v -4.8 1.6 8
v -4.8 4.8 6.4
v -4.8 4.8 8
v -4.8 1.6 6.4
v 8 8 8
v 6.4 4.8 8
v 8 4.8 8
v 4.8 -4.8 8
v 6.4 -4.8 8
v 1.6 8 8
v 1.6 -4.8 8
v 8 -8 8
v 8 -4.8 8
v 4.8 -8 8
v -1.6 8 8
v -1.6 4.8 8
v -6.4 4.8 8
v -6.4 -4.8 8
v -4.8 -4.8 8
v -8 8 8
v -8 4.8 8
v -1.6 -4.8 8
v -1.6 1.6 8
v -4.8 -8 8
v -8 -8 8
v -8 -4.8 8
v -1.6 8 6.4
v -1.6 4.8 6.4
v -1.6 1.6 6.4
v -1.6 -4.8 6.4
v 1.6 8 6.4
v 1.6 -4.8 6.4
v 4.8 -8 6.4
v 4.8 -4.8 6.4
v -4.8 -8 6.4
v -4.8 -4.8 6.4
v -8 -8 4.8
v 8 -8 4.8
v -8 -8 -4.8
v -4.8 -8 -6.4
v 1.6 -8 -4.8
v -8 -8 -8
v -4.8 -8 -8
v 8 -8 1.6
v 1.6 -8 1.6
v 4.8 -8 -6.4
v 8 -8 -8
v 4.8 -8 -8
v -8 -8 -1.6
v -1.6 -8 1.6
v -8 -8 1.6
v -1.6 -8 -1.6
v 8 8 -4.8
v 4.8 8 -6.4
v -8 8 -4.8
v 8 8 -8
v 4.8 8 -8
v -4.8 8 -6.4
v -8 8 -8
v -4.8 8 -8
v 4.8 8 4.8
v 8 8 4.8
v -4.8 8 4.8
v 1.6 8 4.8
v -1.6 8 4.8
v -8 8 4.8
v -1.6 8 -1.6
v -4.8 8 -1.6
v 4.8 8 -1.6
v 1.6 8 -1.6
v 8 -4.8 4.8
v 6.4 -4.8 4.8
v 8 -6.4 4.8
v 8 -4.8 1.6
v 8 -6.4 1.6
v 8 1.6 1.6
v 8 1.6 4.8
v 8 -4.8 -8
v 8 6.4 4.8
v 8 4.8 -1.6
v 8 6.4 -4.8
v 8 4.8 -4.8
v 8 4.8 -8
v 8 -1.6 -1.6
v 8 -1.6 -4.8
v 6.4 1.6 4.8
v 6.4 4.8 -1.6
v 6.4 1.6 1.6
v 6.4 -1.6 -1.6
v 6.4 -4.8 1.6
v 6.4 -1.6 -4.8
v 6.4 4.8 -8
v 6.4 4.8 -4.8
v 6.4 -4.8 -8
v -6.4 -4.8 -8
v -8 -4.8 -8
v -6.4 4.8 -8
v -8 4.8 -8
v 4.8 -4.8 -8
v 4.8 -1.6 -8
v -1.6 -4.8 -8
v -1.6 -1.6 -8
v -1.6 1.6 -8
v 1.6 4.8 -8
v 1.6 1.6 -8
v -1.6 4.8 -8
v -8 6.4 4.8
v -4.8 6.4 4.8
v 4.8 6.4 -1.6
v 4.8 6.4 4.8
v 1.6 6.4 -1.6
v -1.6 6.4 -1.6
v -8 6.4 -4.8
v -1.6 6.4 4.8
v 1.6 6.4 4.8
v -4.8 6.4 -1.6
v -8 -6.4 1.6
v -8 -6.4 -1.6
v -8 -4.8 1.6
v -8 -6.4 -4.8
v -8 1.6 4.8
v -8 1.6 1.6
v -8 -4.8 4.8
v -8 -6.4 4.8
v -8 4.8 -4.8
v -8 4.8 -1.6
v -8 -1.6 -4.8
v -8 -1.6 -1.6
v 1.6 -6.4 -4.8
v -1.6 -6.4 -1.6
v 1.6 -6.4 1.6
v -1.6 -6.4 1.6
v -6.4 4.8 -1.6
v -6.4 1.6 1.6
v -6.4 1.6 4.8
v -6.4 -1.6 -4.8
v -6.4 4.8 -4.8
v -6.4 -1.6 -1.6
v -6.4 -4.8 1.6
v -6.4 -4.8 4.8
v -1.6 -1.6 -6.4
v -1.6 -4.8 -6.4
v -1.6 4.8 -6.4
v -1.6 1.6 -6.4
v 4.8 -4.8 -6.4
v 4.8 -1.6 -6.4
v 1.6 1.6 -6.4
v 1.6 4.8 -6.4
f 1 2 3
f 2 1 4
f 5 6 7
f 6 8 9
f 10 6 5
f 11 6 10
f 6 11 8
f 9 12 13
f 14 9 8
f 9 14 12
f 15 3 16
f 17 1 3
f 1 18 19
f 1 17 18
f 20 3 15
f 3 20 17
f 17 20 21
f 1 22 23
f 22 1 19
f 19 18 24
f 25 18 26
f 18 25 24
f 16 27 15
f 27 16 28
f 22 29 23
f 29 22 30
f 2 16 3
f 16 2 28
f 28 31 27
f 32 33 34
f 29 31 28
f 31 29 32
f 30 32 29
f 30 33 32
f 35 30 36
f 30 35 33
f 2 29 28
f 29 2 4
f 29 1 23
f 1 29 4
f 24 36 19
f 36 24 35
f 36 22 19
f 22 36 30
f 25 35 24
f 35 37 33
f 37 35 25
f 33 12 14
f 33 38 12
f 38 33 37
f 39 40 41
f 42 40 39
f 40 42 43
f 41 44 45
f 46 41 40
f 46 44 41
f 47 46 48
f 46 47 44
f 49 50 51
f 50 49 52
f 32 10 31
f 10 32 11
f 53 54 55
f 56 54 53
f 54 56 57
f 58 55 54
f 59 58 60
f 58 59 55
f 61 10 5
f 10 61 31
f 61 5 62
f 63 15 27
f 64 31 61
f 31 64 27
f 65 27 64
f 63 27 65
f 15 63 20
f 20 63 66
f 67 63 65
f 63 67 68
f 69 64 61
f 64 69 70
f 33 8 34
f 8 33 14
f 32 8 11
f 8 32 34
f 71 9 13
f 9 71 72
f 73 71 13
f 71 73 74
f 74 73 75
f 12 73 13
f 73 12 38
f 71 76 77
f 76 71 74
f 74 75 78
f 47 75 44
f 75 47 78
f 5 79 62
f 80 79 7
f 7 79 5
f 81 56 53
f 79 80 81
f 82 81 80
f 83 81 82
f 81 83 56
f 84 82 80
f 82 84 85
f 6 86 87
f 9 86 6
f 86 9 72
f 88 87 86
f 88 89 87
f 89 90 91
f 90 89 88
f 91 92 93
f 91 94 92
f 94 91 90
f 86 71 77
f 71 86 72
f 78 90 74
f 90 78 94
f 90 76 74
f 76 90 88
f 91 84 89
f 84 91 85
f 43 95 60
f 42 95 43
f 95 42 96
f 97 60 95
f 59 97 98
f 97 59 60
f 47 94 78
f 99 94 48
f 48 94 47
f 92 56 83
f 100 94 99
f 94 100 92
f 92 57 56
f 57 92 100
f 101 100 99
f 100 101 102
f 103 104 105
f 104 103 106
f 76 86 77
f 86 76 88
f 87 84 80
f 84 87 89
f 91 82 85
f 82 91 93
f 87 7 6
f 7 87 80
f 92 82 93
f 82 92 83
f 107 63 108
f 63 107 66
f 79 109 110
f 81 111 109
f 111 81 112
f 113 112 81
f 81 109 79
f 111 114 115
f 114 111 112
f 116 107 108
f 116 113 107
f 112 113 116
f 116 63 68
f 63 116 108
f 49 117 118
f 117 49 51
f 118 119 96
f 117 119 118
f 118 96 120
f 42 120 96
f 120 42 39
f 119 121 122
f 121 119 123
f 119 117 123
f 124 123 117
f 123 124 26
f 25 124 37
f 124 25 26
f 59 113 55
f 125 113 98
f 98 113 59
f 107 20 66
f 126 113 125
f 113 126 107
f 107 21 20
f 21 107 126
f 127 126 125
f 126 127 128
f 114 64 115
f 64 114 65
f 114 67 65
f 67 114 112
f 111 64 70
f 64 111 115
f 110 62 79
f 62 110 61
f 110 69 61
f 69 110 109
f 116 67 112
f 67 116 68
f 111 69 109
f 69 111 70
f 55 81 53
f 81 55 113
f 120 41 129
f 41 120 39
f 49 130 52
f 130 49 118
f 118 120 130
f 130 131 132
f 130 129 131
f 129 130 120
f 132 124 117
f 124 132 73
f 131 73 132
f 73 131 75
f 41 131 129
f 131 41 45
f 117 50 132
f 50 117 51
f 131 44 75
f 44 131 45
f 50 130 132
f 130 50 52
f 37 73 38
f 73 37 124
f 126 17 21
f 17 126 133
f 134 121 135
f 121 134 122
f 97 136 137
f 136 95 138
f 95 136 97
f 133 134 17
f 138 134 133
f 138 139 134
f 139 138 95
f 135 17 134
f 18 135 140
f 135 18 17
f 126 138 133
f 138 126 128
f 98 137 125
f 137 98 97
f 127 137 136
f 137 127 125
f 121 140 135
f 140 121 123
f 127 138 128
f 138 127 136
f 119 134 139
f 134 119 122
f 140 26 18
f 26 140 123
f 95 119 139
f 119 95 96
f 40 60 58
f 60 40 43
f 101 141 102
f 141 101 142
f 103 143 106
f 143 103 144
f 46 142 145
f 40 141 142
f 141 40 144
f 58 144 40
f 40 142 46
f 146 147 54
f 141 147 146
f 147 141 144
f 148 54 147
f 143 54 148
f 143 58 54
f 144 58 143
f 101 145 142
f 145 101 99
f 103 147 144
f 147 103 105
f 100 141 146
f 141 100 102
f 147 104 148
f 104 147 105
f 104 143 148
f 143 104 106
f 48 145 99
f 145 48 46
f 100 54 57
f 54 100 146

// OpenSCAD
// Generated by SolidPython 0.4.6 on 2020-05-11 15:22:11
$fa = .01;
$fs = 0.1;


difference() {
	cube(center = true, size = [16, 16, 16]);
	union() {
		translate(v = [0, 0, 8.0000000000]) {
			rotate(a = [0, 0, 0]) {
				union() {
					translate(v = [-3.2000000000, 3.2000000000, 0]) {
						translate(v = [0, 0, -0.8000000000]) {
							cube(center = true, size = [3.2000000000, 3.2000000000, 1.6000000000]);
						}
					}
					translate(v = [-3.2000000000, -6.4000000000, 0]) {
						translate(v = [0, 0, -0.8000000000]) {
							cube(center = true, size = [3.2000000000, 3.2000000000, 1.6000000000]);
						}
					}
					translate(v = [0.0000000000, 6.4000000000, 0]) {
						translate(v = [0, 0, -0.8000000000]) {
							cube(center = true, size = [3.2000000000, 3.2000000000, 1.6000000000]);
						}
					}
					translate(v = [0.0000000000, 3.2000000000, 0]) {
						translate(v = [0, 0, -0.8000000000]) {
							cube(center = true, size = [3.2000000000, 3.2000000000, 1.6000000000]);
						}
					}
					translate(v = [0.0000000000, 0.0000000000, 0]) {
						translate(v = [0, 0, -0.8000000000]) {
							cube(center = true, size = [3.2000000000, 3.2000000000, 1.6000000000]);
						}
					}
					translate(v = [0.0000000000, -3.2000000000, 0]) {
						translate(v = [0, 0, -0.8000000000]) {
							cube(center = true, size = [3.2000000000, 3.2000000000, 1.6000000000]);
						}
					}
					translate(v = [0.0000000000, -6.4000000000, 0]) {
						translate(v = [0, 0, -0.8000000000]) {
							cube(center = true, size = [3.2000000000, 3.2000000000, 1.6000000000]);
						}
					}
					translate(v = [3.2000000000, -6.4000000000, 0]) {
						translate(v = [0, 0, -0.8000000000]) {
							cube(center = true, size = [3.2000000000, 3.2000000000, 1.6000000000]);
						}
					}
				}
			}
		}
		translate(v = [8.0000000000, 0, 0]) {
			rotate(a = [90, 0, 90]) {
				union() {
					translate(v = [-3.2000000000, 6.4000000000, 0]) {
						translate(v = [0, 0, -0.8000000000]) {
							cube(center = true, size = [3.2000000000, 3.2000000000, 1.6000000000]);
						}
					}
					translate(v = [-3.2000000000, 0.0000000000, 0]) {
						translate(v = [0, 0, -0.8000000000]) {
							cube(center = true, size = [3.2000000000, 3.2000000000, 1.6000000000]);
						}
					}
					translate(v = [-3.2000000000, -3.2000000000, 0]) {
						translate(v = [0, 0, -0.8000000000]) {
							cube(center = true, size = [3.2000000000, 3.2000000000, 1.6000000000]);
						}
					}
					translate(v = [-3.2000000000, -6.4000000000, 0]) {
						translate(v = [0, 0, -0.8000000000]) {
							cube(center = true, size = [3.2000000000, 3.2000000000, 1.6000000000]);
						}
					}
					translate(v = [0.0000000000, 6.4000000000, 0]) {
						translate(v = [0, 0, -0.8000000000]) {
							cube(center = true, size = [3.2000000000, 3.2000000000, 1.6000000000]);
						}
					}
					translate(v = [0.0000000000, 0.0000000000, 0]) {
						translate(v = [0, 0, -0.8000000000]) {
							cube(center = true, size = [3.2000000000, 3.2000000000, 1.6000000000]);
						}
					}
					translate(v = [0.0000000000, -6.4000000000, 0]) {
						translate(v = [0, 0, -0.8000000000]) {
							cube(center = true, size = [3.2000000000, 3.2000000000, 1.6000000000]);
						}
					}
					translate(v = [3.2000000000, 6.4000000000, 0]) {
						translate(v = [0, 0, -0.8000000000]) {
							cube(center = true, size = [3.2000000000, 3.2000000000, 1.6000000000]);
						}
					}
					translate(v = [3.2000000000, 3.2000000000, 0]) {
						translate(v = [0, 0, -0.8000000000]) {
							cube(center = true, size = [3.2000000000, 3.2000000000, 1.6000000000]);
						}
					}
					translate(v = [3.2000000000, 0.0000000000, 0]) {
						translate(v = [0, 0, -0.8000000000]) {
							cube(center = true, size = [3.2000000000, 3.2000000000, 1.6000000000]);
						}
					}
					translate(v = [3.2000000000, -6.4000000000, 0]) {
						translate(v = [0, 0, -0.8000000000]) {
							cube(center = true, size = [3.2000000000, 3.2000000000, 1.6000000000]);
						}
					}
				}
			}
		}
		translate(v = [0, 8.0000000000, 0]) {
			rotate(a = [-90, 90, 0]) {
				union() {
					translate(v = [-3.2000000000, 6.4000000000, 0]) {
						translate(v = [0, 0, -0.8000000000]) {
							cube(center = true, size = [3.2000000000, 3.2000000000, 1.6000000000]);
						}
					}
					translate(v = [-3.2000000000, 0.0000000000, 0]) {
						translate(v = [0, 0, -0.8000000000]) {
							cube(center = true, size = [3.2000000000, 3.2000000000, 1.6000000000]);
						}
					}
					translate(v = [-3.2000000000, -6.4000000000, 0]) {
						translate(v = [0, 0, -0.8000000000]) {
							cube(center = true, size = [3.2000000000, 3.2000000000, 1.6000000000]);
						}
					}
					translate(v = [0.0000000000, 6.4000000000, 0]) {
						translate(v = [0, 0, -0.8000000000]) {
							cube(center = true, size = [3.2000000000, 3.2000000000, 1.6000000000]);
						}
					}
					translate(v = [0.0000000000, 0.0000000000, 0]) {
						translate(v = [0, 0, -0.8000000000]) {
							cube(center = true, size = [3.2000000000, 3.2000000000, 1.6000000000]);
						}
					}
					translate(v = [0.0000000000, -6.4000000000, 0]) {
						translate(v = [0, 0, -0.8000000000]) {
							cube(center = true, size = [3.2000000000, 3.2000000000, 1.6000000000]);
						}
					}
					translate(v = [3.2000000000, 6.4000000000, 0]) {
						translate(v = [0, 0, -0.8000000000]) {
							cube(center = true, size = [3.2000000000, 3.2000000000, 1.6000000000]);
						}
					}
					translate(v = [3.2000000000, 3.2000000000, 0]) {
						translate(v = [0, 0, -0.8000000000]) {
							cube(center = true, size = [3.2000000000, 3.2000000000, 1.6000000000]);
						}
					}
					translate(v = [3.2000000000, 0.0000000000, 0]) {
						translate(v = [0, 0, -0.8000000000]) {
							cube(center = true, size = [3.2000000000, 3.2000000000, 1.6000000000]);
						}
					}
					translate(v = [3.2000000000, -3.2000000000, 0]) {
						translate(v = [0, 0, -0.8000000000]) {
							cube(center = true, size = [3.2000000000, 3.2000000000, 1.6000000000]);
						}
					}
					translate(v = [3.2000000000, -6.4000000000, 0]) {
						translate(v = [0, 0, -0.8000000000]) {
							cube(center = true, size = [3.2000000000, 3.2000000000, 1.6000000000]);
						}
					}
				}
			}
		}
		translate(v = [0, -8.0000000000, 0]) {
			rotate(a = [90, -90, 0]) {
				union() {
					translate(v = [-3.2000000000, 6.4000000000, 0]) {
						translate(v = [0, 0, -0.8000000000]) {
							cube(center = true, size = [3.2000000000, 3.2000000000, 1.6000000000]);
						}
					}
					translate(v = [-3.2000000000, 3.2000000000, 0]) {
						translate(v = [0, 0, -0.8000000000]) {
							cube(center = true, size = [3.2000000000, 3.2000000000, 1.6000000000]);
						}
					}
					translate(v = [-3.2000000000, 0.0000000000, 0]) {
						translate(v = [0, 0, -0.8000000000]) {
							cube(center = true, size = [3.2000000000, 3.2000000000, 1.6000000000]);
						}
					}
					translate(v = [0.0000000000, 0.0000000000, 0]) {
						translate(v = [0, 0, -0.8000000000]) {
							cube(center = true, size = [3.2000000000, 3.2000000000, 1.6000000000]);
						}
					}
					translate(v = [3.2000000000, 6.4000000000, 0]) {
						translate(v = [0, 0, -0.8000000000]) {
							cube(center = true, size = [3.2000000000, 3.2000000000, 1.6000000000]);
						}
					}
					translate(v = [3.2000000000, 3.2000000000, 0]) {
						translate(v = [0, 0, -0.8000000000]) {
							cube(center = true, size = [3.2000000000, 3.2000000000, 1.6000000000]);
						}
					}
					translate(v = [3.2000000000, 0.0000000000, 0]) {
						translate(v = [0, 0, -0.8000000000]) {
							cube(center = true, size = [3.2000000000, 3.2000000000, 1.6000000000]);
						}
					}
					translate(v = [3.2000000000, -3.2000000000, 0]) {
						translate(v = [0, 0, -0.8000000000]) {
							cube(center = true, size = [3.2000000000, 3.2000000000, 1.6000000000]);
						}
					}
					translate(v = [3.2000000000, -6.4000000000, 0]) {
						translate(v = [0, 0, -0.8000000000]) {
							cube(center = true, size = [3.2000000000, 3.2000000000, 1.6000000000]);
						}
					}
				}
			}
		}
		translate(v = [-8.0000000000, 0, 0]) {
			rotate(a = [90, 0, -90]) {
				union() {
					translate(v = [-3.2000000000, 6.4000000000, 0]) {
						translate(v = [0, 0, -0.8000000000]) {
							cube(center = true, size = [3.2000000000, 3.2000000000, 1.6000000000]);
						}
					}
					translate(v = [-3.2000000000, 3.2000000000, 0]) {
						translate(v = [0, 0, -0.8000000000]) {
							cube(center = true, size = [3.2000000000, 3.2000000000, 1.6000000000]);
						}
					}
					translate(v = [-3.2000000000, 0.0000000000, 0]) {
						translate(v = [0, 0, -0.8000000000]) {
							cube(center = true, size = [3.2000000000, 3.2000000000, 1.6000000000]);
						}
					}
					translate(v = [-3.2000000000, -6.4000000000, 0]) {
						translate(v = [0, 0, -0.8000000000]) {
							cube(center = true, size = [3.2000000000, 3.2000000000, 1.6000000000]);
						}
					}
					translate(v = [0.0000000000, 6.4000000000, 0]) {
						translate(v = [0, 0, -0.8000000000]) {
							cube(center = true, size = [3.2000000000, 3.2000000000, 1.6000000000]);
						}
					}
					translate(v = [0.0000000000, 0.0000000000, 0]) {
						translate(v = [0, 0, -0.8000000000]) {
							cube(center = true, size = [3.2000000000, 3.2000000000, 1.6000000000]);
						}
					}
					translate(v = [0.0000000000, -6.4000000000, 0]) {
						translate(v = [0, 0, -0.8000000000]) {
							cube(center = true, size = [3.2000000000, 3.2000000000, 1.6000000000]);
						}
					}
					translate(v = [3.2000000000, 6.4000000000, 0]) {
						translate(v = [0, 0, -0.8000000000]) {
							cube(center = true, size = [3.2000000000, 3.2000000000, 1.6000000000]);
						}
					}
					translate(v = [3.2000000000, 0.0000000000, 0]) {
						translate(v = [0, 0, -0.8000000000]) {
							cube(center = true, size = [3.2000000000, 3.2000000000, 1.6000000000]);
						}
					}
					translate(v = [3.2000000000, -3.2000000000, 0]) {
						translate(v = [0, 0, -0.8000000000]) {
							cube(center = true, size = [3.2000000000, 3.2000000000, 1.6000000000]);
						}
					}
					translate(v = [3.2000000000, -6.4000000000, 0]) {
						translate(v = [0, 0, -0.8000000000]) {
							cube(center = true, size = [3.2000000000, 3.2000000000, 1.6000000000]);
						}
					}
				}
			}
		}
		translate(v = [0, 0, -8.0000000000]) {
			rotate(a = [180, 0, 0]) {
				union() {
					translate(v = [-3.2000000000, 6.4000000000, 0]) {
						translate(v = [0, 0, -0.8000000000]) {
							cube(center = true, size = [3.2000000000, 3.2000000000, 1.6000000000]);
						}
					}
					translate(v = [-3.2000000000, 3.2000000000, 0]) {
						translate(v = [0, 0, -0.8000000000]) {
							cube(center = true, size = [3.2000000000, 3.2000000000, 1.6000000000]);
						}
					}
					translate(v = [-3.2000000000, 0.0000000000, 0]) {
						translate(v = [0, 0, -0.8000000000]) {
							cube(center = true, size = [3.2000000000, 3.2000000000, 1.6000000000]);
						}
					}
					translate(v = [-3.2000000000, -3.2000000000, 0]) {
						translate(v = [0, 0, -0.8000000000]) {
							cube(center = true, size = [3.2000000000, 3.2000000000, 1.6000000000]);
						}
					}
					translate(v = [-3.2000000000, -6.4000000000, 0]) {
						translate(v = [0, 0, -0.8000000000]) {
							cube(center = true, size = [3.2000000000, 3.2000000000, 1.6000000000]);
						}
					}
					translate(v = [0.0000000000, 6.4000000000, 0]) {
						translate(v = [0, 0, -0.8000000000]) {
							cube(center = true, size = [3.2000000000, 3.2000000000, 1.6000000000]);
						}
					}
					translate(v = [0.0000000000, 0.0000000000, 0]) {
						translate(v = [0, 0, -0.8000000000]) {
							cube(center = true, size = [3.2000000000, 3.2000000000, 1.6000000000]);
						}
					}
					translate(v = [0.0000000000, -6.4000000000, 0]) {
						translate(v = [0, 0, -0.8000000000]) {
							cube(center = true, size = [3.2000000000, 3.2000000000, 1.6000000000]);
						}
					}
					translate(v = [3.2000000000, 6.4000000000, 0]) {
						translate(v = [0, 0, -0.8000000000]) {
							cube(center = true, size = [3.2000000000, 3.2000000000, 1.6000000000]);
						}
					}
					translate(v = [3.2000000000, 0.0000000000, 0]) {
						translate(v = [0, 0, -0.8000000000]) {
							cube(center = true, size = [3.2000000000, 3.2000000000, 1.6000000000]);
						}
					}
					translate(v = [3.2000000000, -3.2000000000, 0]) {
						translate(v = [0, 0, -0.8000000000]) {
							cube(center = true, size = [3.2000000000, 3.2000000000, 1.6000000000]);
						}
					}
					translate(v = [3.2000000000, -6.4000000000, 0]) {
						translate(v = [0, 0, -0.8000000000]) {
							cube(center = true, size = [3.2000000000, 3.2000000000, 1.6000000000]);
						}
					}
				}
			}
		}
	}
}
/***********************************************
*********      SolidPython code:      **********
************************************************
 
import os
from os.path import join as path_join
from typing import Iterable

from solid import *
from solid.utils import *


def line(
        a: Tuple[float, float, float],
        b: Tuple[float, float, float],
        r: float = 1.0,
        capped=True,
):
    if capped:
        return hull()(translate(a)(sphere(r=r)), translate(b)(sphere(r=r)))
    else:
        return hull()(
            hull()(translate(a)(sphere(r=r)), translate(b)(sphere(r=r)))
            - translate(a)(sphere(r=r))
            - translate(b)(sphere(r=r))
        )


def mix(p1: Tuple[float, float, float], p2: Tuple[float, float, float], a: float):
    if len(p1) != len(p2):
        raise IndexError()
    return tuple((x * (1 - a)) + (y * a) for x, y in zip(p1, p2))


def pairwise_hull(objs: Iterable[OpenSCADObject]):
    return sum(hull()(a, b) for a, b in zip(objs, objs[1:]))


def generate_part(part, partname, resolution=0.1):
    if not os.path.exists("generated"):
        os.makedirs("generated")
    scad_render_to_file(
        part,
        path_join("generated", f"{partname}.scad"),
        file_header=f"$fa = .01;\n$fs = {resolution};\n",
    )


standard_pips = (
    (
        (0, 0),
    ),
    (
        (-1, -1),
        (1, 1),
    ),
    (
        (-1, -1),
        (0, 0),
        (1, 1),
    ),
    (
        (-1, -1),
        (-1, 1),
        (1, -1),
        (1, 1),
    ),
    (
        (-1, -1),
        (-1, 1),
        (0, 0),
        (1, -1),
        (1, 1),
    ),
    (
        (-1, -1),
        (-1, 0),
        (-1, 1),
        (1, -1),
        (1, 0),
        (1, 1),
    ),
)

PHI = (1 + 5**.5)/2

phi = 1/PHI

def torus(major_r, minor_r, resolution):
    return rotate_extrude()(translate((major_r, 0, 0))(circle(minor_r)))


__all__ = ["line", "mix", "pairwise_hull", "generate_part", "standard_pips", "torus", "PHI", "phi"]
 
 
************************************************/
